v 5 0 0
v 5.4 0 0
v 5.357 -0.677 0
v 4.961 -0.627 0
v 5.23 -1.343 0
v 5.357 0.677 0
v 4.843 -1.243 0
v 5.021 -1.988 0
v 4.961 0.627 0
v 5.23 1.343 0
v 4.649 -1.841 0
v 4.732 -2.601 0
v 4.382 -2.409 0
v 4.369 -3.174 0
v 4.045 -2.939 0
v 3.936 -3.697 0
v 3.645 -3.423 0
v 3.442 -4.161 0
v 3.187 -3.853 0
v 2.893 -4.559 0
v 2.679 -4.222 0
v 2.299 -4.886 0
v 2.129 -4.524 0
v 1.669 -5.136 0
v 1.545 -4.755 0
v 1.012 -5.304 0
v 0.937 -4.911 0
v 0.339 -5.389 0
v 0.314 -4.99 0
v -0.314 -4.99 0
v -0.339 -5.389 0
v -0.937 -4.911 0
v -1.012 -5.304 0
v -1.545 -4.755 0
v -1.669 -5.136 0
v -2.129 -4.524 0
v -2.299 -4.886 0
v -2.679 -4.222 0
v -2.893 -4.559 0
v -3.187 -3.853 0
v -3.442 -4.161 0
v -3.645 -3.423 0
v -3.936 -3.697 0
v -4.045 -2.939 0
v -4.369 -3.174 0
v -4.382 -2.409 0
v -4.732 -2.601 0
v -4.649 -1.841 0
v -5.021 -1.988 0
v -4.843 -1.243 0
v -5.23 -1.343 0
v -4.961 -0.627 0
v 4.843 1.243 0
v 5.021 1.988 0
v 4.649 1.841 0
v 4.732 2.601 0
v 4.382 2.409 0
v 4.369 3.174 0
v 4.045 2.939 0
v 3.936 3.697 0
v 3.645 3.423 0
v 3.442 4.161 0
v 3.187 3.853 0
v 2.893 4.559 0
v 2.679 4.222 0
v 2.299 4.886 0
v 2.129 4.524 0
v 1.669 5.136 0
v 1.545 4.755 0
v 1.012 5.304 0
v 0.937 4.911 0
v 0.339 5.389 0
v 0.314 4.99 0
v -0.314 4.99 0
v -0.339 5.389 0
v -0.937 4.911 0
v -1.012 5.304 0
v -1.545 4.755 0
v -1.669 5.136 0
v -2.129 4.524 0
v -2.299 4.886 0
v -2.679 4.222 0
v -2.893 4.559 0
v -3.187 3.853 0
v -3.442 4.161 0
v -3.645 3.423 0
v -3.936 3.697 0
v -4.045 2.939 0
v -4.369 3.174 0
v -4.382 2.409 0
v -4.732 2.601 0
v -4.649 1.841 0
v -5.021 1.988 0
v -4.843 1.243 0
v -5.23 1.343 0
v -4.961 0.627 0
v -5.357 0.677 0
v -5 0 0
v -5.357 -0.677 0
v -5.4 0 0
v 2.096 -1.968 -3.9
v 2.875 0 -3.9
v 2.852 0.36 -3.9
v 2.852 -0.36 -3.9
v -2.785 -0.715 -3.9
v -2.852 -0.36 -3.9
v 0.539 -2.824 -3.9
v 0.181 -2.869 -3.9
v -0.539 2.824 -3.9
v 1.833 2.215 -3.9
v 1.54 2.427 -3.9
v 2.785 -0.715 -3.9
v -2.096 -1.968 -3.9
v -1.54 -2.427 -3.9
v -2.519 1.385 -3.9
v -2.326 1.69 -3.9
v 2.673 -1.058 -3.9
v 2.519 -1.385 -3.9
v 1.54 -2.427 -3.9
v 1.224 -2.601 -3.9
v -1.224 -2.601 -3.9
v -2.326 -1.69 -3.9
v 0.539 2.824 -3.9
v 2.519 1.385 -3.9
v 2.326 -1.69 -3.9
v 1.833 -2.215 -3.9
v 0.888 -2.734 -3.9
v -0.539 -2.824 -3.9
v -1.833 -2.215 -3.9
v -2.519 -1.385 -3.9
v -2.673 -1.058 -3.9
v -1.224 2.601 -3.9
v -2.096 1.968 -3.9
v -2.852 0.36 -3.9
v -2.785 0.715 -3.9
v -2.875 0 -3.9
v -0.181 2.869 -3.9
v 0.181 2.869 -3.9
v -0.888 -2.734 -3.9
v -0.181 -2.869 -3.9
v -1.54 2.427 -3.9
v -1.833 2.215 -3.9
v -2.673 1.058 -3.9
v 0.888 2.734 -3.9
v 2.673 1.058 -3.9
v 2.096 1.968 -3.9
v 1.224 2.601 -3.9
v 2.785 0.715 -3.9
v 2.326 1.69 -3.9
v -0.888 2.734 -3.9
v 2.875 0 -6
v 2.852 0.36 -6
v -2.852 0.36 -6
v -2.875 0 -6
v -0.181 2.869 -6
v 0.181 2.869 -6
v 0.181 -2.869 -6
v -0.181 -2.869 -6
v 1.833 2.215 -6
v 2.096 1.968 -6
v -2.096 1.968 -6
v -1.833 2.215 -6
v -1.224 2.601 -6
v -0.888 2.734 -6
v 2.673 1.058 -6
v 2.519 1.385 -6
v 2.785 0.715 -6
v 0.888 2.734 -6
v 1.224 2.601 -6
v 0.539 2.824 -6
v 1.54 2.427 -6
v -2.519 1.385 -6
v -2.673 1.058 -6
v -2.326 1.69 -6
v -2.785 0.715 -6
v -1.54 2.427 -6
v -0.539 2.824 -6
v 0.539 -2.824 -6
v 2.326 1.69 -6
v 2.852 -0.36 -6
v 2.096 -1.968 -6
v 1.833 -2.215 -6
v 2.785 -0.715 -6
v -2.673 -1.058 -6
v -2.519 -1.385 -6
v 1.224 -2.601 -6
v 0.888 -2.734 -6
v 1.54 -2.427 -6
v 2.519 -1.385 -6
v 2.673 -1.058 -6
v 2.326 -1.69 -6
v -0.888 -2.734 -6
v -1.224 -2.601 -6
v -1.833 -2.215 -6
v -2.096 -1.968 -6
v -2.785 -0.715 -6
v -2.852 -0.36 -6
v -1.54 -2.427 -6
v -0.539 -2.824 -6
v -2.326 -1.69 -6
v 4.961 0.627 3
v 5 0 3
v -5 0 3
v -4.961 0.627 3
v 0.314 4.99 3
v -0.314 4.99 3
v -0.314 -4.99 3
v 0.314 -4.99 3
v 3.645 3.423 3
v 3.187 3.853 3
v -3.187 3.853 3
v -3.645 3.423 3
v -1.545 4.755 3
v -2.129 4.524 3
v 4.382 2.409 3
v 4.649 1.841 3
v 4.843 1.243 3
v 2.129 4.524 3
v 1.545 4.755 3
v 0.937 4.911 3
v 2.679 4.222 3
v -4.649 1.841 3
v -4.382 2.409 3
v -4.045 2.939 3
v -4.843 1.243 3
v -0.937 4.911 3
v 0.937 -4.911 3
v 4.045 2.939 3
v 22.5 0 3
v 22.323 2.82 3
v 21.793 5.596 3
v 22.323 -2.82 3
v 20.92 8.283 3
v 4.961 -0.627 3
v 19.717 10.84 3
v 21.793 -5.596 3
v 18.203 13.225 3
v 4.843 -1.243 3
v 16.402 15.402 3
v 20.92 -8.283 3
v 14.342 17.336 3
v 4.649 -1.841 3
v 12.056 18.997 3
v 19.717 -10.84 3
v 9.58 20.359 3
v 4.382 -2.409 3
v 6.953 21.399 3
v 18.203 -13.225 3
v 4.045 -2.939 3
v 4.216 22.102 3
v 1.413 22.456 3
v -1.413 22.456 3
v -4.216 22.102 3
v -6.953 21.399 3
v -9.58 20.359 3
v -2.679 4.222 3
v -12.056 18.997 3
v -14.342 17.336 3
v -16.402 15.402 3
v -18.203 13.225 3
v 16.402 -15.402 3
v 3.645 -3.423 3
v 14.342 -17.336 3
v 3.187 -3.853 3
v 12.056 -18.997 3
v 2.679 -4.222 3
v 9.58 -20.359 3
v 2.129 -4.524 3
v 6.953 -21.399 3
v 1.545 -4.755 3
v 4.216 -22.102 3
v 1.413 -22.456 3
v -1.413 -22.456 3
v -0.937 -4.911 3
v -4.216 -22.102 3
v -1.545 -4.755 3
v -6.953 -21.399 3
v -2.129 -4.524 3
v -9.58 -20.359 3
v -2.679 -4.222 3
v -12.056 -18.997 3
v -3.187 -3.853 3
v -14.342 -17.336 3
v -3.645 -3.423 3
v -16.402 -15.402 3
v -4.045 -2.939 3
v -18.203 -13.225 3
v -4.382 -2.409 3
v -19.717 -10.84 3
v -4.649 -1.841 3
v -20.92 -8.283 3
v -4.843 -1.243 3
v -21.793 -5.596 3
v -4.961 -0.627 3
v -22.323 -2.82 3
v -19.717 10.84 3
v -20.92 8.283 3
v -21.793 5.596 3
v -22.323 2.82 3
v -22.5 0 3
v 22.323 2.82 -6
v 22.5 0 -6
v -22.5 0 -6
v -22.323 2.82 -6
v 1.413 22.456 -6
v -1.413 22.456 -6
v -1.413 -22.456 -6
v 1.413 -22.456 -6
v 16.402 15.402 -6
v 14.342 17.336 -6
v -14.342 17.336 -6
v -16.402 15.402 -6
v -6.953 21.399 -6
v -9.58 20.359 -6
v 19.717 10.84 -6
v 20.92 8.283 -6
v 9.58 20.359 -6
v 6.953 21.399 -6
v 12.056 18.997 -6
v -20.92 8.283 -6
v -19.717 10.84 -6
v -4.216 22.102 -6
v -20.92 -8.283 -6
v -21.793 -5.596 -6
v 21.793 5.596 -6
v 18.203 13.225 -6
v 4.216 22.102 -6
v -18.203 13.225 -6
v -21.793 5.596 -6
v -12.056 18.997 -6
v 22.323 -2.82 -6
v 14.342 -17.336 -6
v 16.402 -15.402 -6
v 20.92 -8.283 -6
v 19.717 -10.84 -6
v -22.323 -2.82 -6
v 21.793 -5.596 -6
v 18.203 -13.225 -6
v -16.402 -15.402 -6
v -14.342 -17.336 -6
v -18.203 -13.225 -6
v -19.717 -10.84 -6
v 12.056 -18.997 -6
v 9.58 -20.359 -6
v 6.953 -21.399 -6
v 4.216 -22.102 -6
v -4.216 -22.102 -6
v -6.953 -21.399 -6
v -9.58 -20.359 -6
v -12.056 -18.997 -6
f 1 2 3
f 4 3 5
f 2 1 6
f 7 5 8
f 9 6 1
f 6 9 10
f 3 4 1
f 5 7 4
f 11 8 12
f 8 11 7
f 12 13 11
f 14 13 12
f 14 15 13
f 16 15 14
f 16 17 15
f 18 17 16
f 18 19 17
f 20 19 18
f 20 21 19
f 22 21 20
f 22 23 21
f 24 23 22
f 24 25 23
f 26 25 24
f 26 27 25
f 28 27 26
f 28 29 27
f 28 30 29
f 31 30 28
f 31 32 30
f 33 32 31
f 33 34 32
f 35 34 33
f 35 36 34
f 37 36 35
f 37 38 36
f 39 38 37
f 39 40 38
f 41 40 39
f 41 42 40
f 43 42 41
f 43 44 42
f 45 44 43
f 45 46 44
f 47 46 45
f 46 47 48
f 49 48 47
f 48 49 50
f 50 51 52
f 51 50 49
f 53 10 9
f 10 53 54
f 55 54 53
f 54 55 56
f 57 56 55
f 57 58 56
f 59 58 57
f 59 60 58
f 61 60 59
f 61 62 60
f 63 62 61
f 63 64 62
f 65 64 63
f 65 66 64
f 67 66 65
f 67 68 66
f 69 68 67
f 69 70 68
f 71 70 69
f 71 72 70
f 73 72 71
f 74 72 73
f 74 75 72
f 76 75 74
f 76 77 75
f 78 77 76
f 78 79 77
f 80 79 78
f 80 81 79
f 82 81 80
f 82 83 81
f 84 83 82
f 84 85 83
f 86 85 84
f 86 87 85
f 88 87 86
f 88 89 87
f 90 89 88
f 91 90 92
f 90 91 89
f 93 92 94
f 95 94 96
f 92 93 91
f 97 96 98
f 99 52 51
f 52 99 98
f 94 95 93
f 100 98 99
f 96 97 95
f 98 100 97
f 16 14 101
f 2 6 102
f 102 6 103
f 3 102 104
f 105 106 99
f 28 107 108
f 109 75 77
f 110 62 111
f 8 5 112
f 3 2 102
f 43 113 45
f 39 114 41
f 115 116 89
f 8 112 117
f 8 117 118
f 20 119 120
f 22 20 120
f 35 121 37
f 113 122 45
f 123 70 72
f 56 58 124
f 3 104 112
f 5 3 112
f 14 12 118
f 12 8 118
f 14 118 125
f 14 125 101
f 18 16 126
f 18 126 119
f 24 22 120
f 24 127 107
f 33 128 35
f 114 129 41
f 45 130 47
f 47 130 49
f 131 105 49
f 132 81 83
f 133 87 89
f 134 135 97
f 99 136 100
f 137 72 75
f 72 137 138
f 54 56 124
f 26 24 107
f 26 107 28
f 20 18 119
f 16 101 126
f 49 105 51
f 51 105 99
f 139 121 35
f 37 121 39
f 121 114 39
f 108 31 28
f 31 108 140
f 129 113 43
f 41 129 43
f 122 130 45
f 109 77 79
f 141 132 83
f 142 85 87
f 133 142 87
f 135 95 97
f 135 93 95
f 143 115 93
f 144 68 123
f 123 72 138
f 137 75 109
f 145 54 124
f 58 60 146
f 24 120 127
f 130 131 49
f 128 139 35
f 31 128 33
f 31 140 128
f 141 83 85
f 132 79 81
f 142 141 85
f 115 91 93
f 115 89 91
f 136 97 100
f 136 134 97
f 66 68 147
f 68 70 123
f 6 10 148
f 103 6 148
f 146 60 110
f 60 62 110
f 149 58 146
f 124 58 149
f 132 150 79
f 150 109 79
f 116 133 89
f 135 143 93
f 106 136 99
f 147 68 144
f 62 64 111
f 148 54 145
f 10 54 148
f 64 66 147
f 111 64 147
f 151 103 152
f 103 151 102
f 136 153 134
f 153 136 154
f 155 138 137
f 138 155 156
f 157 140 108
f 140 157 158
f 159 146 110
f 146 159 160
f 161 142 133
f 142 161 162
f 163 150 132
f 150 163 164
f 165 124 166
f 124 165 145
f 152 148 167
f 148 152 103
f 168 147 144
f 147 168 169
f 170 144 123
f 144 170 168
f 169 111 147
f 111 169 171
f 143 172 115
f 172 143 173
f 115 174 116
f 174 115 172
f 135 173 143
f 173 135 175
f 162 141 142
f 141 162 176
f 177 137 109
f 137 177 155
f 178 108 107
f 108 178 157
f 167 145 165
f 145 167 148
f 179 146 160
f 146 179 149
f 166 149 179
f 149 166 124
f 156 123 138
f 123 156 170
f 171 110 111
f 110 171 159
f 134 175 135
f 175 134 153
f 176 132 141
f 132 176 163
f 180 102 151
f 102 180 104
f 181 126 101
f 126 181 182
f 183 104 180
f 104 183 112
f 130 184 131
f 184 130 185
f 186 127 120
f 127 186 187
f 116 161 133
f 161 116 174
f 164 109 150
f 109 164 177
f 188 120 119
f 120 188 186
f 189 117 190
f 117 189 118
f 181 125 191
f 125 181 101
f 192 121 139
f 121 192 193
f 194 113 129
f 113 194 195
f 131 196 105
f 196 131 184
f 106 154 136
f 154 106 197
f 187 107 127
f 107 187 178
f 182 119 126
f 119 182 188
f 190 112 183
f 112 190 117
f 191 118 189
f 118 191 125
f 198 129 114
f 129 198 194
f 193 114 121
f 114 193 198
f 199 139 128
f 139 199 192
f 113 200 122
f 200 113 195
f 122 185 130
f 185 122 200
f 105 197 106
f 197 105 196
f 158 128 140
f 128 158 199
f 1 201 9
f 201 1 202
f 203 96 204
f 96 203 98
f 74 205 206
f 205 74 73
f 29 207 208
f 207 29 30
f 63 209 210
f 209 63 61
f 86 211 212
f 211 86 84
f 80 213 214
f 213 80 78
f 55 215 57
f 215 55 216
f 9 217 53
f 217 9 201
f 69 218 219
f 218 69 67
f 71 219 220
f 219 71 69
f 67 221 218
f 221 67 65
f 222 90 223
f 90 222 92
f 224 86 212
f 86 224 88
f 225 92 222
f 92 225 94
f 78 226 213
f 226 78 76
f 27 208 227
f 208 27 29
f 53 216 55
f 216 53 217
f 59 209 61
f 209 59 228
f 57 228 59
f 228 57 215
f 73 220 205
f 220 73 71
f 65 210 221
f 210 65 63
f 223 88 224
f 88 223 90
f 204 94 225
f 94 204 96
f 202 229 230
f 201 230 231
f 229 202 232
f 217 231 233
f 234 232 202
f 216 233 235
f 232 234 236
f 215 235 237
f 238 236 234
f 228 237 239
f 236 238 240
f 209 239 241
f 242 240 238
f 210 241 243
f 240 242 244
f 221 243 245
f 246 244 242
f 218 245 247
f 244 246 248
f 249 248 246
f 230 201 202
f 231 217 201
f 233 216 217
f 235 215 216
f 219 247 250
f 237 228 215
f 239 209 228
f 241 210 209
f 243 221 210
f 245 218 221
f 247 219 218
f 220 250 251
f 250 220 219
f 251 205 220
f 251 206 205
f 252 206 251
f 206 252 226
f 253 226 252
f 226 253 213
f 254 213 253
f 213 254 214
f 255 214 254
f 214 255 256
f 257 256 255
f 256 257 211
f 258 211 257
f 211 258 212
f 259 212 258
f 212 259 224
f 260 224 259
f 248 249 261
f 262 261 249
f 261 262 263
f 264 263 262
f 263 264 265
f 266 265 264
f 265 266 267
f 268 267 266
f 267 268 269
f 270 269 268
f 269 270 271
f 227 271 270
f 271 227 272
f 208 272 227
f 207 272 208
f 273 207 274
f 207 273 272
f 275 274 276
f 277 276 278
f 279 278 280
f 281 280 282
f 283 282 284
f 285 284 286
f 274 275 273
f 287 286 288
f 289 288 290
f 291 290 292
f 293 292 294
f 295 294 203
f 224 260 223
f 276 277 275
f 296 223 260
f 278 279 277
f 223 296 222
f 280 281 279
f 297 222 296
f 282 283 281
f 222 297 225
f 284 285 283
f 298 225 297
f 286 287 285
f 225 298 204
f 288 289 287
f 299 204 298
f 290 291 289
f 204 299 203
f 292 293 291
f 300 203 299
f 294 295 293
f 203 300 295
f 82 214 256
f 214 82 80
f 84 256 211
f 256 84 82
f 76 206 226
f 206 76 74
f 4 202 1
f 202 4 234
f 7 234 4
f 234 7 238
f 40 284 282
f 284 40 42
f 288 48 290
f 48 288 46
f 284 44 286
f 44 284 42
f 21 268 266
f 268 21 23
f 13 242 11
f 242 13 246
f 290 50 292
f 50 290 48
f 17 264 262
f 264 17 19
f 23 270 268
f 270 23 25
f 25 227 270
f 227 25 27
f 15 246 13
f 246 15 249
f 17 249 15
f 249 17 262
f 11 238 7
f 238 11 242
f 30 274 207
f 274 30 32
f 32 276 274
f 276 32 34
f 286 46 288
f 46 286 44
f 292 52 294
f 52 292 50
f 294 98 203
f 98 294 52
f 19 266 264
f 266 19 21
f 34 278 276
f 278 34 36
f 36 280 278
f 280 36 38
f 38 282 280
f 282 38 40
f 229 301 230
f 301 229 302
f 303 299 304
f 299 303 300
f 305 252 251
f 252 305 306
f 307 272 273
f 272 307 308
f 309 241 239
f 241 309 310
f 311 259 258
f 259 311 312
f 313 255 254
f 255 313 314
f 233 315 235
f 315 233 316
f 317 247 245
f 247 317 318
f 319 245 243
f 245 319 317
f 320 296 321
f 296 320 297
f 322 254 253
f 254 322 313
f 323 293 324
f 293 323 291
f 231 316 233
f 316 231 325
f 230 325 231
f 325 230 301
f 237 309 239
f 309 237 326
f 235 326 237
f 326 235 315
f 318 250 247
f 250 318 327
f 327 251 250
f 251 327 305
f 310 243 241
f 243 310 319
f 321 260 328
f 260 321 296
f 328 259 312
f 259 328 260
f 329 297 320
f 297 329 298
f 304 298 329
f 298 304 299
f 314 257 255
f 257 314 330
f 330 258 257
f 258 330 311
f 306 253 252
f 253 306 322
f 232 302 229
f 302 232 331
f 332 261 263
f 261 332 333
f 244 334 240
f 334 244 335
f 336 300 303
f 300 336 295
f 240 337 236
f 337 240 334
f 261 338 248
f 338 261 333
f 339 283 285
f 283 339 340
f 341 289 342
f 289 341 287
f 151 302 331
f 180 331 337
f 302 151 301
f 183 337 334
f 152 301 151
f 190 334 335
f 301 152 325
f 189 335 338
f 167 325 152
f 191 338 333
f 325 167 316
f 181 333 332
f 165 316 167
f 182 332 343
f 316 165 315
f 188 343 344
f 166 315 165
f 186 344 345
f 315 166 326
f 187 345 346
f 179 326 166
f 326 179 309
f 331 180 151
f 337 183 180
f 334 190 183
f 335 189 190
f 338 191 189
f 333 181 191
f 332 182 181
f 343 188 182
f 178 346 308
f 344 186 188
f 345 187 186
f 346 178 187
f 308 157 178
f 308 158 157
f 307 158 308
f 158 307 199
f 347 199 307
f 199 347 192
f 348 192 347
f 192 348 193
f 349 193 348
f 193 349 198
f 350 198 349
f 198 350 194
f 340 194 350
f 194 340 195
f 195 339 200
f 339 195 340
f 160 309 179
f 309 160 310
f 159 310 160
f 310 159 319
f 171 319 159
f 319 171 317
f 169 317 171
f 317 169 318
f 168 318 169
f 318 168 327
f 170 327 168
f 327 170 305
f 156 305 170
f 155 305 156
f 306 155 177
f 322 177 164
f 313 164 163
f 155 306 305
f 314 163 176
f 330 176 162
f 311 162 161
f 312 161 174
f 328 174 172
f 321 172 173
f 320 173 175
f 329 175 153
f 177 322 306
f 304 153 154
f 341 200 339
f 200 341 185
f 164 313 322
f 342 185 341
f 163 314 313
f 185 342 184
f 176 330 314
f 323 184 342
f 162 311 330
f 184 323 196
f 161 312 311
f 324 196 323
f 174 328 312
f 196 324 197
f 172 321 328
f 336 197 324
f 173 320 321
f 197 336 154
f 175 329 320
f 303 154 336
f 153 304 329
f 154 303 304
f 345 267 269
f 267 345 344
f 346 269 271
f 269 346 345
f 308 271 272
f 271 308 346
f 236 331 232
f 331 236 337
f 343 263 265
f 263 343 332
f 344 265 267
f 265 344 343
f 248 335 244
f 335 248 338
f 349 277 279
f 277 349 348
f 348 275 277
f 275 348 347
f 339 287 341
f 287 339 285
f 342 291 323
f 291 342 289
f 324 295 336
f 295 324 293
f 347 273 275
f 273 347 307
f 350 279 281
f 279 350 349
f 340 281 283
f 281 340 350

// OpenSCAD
$fn = 50;


difference() {
	union() {
		translate(v = [0, 0, -6.0000000000]) {
			cylinder(h = 9, r = 22.5000000000);
		}
	}
	union() {
		translate(v = [0, 0, 0]) {
			rotate(a = [0, 0, 0]) {
				difference() {
					union() {
						translate(v = [0, 0, -9.0000000000]) {
							cylinder(h = 9, r = 2.6000000000);
						}
						translate(v = [0, 0, -3.9000000000]) {
							cylinder(h = 3.9000000000, r1 = 2.8750000000, r2 = 5.4000000000);
						}
						translate(v = [0, 0, -9.0000000000]) {
							cylinder(h = 9, r = 2.8750000000);
						}
						translate(v = [0, 0, -9.0000000000]) {
							cylinder(h = 9, r = 2.6000000000);
						}
					}
					union();
				}
			}
		}
		#cylinder(h = 3, r = 5.0000000000);
	}
}
